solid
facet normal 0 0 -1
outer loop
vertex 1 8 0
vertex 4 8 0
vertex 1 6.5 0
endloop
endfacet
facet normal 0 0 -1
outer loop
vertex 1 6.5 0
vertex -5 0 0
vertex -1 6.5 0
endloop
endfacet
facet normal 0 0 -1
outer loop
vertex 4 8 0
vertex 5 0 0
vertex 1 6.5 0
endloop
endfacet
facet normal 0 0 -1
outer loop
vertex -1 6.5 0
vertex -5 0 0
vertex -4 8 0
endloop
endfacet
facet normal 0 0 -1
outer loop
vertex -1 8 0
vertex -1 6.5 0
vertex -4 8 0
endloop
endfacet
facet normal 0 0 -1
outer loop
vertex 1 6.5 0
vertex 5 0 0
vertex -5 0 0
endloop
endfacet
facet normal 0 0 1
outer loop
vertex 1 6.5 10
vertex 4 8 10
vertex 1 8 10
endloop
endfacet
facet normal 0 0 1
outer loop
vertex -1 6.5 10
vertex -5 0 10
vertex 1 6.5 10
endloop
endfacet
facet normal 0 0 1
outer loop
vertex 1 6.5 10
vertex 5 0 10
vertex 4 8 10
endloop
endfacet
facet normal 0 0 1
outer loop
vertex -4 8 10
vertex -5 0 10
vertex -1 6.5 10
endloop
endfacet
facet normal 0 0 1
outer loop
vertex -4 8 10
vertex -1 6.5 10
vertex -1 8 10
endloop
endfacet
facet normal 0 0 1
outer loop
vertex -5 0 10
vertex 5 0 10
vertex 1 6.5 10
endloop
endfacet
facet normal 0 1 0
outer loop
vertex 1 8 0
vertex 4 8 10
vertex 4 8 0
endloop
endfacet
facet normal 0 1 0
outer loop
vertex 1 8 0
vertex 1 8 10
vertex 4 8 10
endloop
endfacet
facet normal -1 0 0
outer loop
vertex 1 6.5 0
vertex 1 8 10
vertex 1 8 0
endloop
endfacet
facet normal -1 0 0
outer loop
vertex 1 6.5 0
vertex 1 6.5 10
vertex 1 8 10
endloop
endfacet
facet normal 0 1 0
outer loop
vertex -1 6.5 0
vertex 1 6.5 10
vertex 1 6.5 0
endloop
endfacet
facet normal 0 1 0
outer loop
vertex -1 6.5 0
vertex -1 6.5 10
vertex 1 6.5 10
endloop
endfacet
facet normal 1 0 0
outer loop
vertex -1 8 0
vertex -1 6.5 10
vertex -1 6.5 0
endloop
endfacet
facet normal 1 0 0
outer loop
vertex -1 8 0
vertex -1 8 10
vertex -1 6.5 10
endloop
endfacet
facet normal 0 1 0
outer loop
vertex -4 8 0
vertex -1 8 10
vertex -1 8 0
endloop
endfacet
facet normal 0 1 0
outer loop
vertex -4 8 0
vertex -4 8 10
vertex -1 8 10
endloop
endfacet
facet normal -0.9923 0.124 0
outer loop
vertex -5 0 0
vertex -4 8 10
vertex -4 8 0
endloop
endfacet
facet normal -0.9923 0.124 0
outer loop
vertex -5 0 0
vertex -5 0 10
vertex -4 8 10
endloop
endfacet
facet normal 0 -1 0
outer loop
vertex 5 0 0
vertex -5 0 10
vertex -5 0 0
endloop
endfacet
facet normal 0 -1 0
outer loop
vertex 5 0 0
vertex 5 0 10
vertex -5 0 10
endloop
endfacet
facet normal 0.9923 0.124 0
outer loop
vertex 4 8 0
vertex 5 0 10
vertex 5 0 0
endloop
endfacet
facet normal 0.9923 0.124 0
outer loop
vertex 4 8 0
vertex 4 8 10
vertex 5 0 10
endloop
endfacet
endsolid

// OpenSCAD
base_width = 10;
top_width = 8;
height = 8;
extrusion = 10;

slot_height= 1.5;
slot_width= 2;

//cube(size=[base_length,width,height], center=true);

linear_extrude(extrusion)
polygon([
    [-base_width/2,0]
    ,[base_width/2,0]
    ,[top_width/2,height]
    ,[slot_width/2, height]
    ,[slot_width/2, height-slot_height]
    ,[-slot_width/2, height-slot_height]
    ,[-slot_width/2, height]
    ,[-top_width/2,height]
]);
